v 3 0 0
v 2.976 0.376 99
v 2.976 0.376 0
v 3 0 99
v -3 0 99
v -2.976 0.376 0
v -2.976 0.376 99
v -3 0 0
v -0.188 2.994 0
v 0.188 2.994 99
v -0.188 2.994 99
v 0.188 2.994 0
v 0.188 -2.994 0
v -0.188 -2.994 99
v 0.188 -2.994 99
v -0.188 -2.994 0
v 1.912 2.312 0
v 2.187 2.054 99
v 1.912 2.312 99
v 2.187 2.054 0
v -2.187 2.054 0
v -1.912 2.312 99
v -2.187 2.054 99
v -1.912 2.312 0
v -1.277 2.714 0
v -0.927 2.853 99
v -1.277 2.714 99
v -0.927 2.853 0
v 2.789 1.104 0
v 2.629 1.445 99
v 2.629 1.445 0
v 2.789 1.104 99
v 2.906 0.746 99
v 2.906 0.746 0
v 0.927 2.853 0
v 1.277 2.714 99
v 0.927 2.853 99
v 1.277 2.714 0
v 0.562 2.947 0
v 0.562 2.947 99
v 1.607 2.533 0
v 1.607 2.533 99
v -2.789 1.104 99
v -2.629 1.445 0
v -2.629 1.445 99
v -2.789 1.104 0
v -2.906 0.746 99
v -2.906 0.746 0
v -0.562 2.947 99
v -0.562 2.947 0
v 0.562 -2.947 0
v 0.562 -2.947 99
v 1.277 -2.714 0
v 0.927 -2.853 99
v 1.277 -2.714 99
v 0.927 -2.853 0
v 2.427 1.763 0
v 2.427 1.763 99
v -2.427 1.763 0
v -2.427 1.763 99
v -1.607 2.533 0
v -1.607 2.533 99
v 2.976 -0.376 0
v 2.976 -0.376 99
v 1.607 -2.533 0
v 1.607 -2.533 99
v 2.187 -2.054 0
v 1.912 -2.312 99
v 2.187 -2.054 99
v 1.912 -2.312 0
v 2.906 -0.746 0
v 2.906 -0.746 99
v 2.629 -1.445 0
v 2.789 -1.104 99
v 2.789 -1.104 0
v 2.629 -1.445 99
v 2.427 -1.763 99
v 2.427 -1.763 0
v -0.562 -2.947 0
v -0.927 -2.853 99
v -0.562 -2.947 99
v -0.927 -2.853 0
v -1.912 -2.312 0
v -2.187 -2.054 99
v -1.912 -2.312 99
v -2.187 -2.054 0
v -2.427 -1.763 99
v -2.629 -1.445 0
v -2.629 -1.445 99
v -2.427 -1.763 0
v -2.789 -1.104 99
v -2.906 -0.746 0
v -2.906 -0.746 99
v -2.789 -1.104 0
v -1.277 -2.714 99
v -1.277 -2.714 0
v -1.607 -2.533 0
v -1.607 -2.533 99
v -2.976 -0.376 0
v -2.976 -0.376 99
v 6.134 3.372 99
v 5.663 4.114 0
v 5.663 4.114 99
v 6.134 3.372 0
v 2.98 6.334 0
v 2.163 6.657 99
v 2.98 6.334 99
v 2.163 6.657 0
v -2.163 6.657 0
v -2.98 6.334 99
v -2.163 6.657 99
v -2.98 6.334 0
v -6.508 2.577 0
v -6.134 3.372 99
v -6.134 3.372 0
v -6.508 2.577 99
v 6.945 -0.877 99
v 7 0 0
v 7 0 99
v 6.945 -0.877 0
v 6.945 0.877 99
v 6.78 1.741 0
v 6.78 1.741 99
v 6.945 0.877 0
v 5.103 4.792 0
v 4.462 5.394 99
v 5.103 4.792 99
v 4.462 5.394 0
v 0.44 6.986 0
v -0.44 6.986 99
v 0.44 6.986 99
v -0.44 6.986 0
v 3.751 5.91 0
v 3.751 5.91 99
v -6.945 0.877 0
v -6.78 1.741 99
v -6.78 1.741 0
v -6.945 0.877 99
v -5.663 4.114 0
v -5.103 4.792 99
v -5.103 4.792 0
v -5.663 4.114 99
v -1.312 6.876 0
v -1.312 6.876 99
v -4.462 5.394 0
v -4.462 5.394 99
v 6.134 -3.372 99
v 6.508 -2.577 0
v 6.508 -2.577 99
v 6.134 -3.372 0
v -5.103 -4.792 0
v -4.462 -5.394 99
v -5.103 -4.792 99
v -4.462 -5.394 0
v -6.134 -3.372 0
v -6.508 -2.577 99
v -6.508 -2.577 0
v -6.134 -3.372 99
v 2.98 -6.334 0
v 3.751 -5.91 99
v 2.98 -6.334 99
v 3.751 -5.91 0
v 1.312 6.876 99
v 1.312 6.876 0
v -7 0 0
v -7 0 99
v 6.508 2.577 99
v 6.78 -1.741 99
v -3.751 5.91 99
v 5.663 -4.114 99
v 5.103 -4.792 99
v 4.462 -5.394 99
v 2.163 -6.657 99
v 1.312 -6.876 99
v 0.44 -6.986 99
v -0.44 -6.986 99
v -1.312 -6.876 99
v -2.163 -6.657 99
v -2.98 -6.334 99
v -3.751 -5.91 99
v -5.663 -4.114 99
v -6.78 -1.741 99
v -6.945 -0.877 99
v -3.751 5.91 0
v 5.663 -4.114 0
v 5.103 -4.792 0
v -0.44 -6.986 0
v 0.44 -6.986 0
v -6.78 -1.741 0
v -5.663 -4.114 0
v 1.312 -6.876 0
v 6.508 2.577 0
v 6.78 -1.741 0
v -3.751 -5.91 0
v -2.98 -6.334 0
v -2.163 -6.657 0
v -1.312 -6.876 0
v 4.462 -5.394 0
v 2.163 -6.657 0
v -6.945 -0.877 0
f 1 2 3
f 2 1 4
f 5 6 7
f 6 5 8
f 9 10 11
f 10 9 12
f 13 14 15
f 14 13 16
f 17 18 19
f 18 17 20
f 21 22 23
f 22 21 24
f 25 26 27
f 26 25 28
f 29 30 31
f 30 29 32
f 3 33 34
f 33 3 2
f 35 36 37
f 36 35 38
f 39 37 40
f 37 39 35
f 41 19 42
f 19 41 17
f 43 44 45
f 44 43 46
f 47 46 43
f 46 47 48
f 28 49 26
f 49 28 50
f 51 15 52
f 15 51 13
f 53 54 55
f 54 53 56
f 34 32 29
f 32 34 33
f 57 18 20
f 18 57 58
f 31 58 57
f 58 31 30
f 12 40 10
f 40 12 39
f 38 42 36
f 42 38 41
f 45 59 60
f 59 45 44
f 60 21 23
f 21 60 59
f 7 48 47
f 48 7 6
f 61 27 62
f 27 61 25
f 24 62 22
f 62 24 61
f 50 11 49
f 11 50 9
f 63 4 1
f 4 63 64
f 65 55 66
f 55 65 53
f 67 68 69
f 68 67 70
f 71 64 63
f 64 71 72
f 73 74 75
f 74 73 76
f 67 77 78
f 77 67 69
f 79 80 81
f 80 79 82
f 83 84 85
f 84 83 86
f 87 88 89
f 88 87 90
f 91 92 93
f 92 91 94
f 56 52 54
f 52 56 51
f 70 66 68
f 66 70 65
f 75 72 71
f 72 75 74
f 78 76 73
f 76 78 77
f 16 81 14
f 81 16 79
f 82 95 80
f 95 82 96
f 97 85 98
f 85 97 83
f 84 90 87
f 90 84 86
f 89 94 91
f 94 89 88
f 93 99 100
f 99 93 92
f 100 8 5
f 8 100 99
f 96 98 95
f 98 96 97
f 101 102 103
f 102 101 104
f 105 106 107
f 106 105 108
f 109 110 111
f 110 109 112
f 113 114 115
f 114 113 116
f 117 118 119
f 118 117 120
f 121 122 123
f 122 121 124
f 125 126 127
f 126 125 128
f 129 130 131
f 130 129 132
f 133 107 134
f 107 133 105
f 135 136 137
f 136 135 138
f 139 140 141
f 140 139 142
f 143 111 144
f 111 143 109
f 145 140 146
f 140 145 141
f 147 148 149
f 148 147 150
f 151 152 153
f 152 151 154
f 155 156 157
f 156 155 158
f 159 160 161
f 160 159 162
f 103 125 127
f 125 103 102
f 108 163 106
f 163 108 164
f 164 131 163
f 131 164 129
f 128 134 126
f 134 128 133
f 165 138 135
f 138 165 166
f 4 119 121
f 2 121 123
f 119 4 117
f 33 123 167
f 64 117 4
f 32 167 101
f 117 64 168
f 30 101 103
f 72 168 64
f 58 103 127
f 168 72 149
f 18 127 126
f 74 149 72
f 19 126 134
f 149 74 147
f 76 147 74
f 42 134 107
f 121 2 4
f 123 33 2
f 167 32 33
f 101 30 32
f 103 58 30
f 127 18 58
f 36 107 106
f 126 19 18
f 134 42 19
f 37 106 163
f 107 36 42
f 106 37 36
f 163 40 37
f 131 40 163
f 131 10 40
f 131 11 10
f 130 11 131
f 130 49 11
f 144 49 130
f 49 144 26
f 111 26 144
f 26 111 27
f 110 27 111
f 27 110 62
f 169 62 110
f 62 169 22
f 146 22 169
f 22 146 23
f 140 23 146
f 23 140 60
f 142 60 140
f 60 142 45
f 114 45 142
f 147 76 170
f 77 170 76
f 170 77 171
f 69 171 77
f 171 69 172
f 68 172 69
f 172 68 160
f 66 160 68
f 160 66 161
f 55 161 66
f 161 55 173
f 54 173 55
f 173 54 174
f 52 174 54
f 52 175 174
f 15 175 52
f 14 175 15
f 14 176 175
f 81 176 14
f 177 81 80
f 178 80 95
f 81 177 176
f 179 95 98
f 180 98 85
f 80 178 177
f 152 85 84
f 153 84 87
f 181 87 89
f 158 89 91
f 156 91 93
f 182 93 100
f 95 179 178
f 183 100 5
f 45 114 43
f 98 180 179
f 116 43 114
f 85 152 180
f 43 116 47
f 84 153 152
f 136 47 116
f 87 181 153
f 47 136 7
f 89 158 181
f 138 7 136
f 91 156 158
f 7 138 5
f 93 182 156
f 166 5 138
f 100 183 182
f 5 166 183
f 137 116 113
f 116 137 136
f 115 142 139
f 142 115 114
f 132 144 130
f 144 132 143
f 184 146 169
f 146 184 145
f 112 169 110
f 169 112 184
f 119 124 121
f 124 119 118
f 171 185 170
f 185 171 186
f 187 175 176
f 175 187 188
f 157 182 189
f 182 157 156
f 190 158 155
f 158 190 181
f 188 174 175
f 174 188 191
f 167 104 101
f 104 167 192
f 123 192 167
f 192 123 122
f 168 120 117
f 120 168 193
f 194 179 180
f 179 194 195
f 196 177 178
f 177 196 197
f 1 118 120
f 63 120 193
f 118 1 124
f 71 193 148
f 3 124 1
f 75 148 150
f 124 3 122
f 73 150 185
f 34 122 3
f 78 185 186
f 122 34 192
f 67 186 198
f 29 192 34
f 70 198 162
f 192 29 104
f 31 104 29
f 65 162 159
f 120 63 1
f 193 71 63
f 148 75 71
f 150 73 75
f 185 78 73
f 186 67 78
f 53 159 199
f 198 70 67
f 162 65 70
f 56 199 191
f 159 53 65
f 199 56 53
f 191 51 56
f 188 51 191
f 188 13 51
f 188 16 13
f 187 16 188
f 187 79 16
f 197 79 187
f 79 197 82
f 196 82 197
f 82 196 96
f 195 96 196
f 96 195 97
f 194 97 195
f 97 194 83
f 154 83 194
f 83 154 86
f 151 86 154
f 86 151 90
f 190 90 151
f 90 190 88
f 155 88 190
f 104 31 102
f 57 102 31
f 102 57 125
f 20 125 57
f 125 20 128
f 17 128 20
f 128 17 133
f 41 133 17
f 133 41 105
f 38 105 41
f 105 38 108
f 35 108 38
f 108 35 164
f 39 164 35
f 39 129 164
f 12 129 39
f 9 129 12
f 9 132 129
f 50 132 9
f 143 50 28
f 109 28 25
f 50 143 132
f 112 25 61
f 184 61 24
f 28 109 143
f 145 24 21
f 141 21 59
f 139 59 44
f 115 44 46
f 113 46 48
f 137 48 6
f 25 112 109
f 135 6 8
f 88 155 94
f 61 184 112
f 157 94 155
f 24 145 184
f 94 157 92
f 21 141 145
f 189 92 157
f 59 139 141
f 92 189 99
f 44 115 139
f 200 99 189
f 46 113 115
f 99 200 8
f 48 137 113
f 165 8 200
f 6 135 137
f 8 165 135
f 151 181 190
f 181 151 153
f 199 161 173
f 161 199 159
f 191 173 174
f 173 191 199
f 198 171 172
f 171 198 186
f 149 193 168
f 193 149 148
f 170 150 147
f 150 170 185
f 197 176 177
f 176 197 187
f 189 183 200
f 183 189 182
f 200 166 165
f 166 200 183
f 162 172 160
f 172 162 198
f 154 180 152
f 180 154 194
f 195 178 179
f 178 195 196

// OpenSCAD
$fn = 50;


difference() {
	union() {
		cylinder(h = 99, r = 7.0000000000);
	}
	union() {
		cylinder(h = 99, r = 3.0000000000);
		cylinder(h = 99, r = 3.0000000000);
		cylinder(h = 99, r = 1.5000000000);
		cylinder(h = 99, r = 1.5000000000);
		cylinder(h = 99, r = 1.5000000000);
		cylinder(h = 99, r = 1.5000000000);
		cylinder(h = 99, r = 1.5000000000);
		cylinder(h = 99, r = 1.5000000000);
	}
}
